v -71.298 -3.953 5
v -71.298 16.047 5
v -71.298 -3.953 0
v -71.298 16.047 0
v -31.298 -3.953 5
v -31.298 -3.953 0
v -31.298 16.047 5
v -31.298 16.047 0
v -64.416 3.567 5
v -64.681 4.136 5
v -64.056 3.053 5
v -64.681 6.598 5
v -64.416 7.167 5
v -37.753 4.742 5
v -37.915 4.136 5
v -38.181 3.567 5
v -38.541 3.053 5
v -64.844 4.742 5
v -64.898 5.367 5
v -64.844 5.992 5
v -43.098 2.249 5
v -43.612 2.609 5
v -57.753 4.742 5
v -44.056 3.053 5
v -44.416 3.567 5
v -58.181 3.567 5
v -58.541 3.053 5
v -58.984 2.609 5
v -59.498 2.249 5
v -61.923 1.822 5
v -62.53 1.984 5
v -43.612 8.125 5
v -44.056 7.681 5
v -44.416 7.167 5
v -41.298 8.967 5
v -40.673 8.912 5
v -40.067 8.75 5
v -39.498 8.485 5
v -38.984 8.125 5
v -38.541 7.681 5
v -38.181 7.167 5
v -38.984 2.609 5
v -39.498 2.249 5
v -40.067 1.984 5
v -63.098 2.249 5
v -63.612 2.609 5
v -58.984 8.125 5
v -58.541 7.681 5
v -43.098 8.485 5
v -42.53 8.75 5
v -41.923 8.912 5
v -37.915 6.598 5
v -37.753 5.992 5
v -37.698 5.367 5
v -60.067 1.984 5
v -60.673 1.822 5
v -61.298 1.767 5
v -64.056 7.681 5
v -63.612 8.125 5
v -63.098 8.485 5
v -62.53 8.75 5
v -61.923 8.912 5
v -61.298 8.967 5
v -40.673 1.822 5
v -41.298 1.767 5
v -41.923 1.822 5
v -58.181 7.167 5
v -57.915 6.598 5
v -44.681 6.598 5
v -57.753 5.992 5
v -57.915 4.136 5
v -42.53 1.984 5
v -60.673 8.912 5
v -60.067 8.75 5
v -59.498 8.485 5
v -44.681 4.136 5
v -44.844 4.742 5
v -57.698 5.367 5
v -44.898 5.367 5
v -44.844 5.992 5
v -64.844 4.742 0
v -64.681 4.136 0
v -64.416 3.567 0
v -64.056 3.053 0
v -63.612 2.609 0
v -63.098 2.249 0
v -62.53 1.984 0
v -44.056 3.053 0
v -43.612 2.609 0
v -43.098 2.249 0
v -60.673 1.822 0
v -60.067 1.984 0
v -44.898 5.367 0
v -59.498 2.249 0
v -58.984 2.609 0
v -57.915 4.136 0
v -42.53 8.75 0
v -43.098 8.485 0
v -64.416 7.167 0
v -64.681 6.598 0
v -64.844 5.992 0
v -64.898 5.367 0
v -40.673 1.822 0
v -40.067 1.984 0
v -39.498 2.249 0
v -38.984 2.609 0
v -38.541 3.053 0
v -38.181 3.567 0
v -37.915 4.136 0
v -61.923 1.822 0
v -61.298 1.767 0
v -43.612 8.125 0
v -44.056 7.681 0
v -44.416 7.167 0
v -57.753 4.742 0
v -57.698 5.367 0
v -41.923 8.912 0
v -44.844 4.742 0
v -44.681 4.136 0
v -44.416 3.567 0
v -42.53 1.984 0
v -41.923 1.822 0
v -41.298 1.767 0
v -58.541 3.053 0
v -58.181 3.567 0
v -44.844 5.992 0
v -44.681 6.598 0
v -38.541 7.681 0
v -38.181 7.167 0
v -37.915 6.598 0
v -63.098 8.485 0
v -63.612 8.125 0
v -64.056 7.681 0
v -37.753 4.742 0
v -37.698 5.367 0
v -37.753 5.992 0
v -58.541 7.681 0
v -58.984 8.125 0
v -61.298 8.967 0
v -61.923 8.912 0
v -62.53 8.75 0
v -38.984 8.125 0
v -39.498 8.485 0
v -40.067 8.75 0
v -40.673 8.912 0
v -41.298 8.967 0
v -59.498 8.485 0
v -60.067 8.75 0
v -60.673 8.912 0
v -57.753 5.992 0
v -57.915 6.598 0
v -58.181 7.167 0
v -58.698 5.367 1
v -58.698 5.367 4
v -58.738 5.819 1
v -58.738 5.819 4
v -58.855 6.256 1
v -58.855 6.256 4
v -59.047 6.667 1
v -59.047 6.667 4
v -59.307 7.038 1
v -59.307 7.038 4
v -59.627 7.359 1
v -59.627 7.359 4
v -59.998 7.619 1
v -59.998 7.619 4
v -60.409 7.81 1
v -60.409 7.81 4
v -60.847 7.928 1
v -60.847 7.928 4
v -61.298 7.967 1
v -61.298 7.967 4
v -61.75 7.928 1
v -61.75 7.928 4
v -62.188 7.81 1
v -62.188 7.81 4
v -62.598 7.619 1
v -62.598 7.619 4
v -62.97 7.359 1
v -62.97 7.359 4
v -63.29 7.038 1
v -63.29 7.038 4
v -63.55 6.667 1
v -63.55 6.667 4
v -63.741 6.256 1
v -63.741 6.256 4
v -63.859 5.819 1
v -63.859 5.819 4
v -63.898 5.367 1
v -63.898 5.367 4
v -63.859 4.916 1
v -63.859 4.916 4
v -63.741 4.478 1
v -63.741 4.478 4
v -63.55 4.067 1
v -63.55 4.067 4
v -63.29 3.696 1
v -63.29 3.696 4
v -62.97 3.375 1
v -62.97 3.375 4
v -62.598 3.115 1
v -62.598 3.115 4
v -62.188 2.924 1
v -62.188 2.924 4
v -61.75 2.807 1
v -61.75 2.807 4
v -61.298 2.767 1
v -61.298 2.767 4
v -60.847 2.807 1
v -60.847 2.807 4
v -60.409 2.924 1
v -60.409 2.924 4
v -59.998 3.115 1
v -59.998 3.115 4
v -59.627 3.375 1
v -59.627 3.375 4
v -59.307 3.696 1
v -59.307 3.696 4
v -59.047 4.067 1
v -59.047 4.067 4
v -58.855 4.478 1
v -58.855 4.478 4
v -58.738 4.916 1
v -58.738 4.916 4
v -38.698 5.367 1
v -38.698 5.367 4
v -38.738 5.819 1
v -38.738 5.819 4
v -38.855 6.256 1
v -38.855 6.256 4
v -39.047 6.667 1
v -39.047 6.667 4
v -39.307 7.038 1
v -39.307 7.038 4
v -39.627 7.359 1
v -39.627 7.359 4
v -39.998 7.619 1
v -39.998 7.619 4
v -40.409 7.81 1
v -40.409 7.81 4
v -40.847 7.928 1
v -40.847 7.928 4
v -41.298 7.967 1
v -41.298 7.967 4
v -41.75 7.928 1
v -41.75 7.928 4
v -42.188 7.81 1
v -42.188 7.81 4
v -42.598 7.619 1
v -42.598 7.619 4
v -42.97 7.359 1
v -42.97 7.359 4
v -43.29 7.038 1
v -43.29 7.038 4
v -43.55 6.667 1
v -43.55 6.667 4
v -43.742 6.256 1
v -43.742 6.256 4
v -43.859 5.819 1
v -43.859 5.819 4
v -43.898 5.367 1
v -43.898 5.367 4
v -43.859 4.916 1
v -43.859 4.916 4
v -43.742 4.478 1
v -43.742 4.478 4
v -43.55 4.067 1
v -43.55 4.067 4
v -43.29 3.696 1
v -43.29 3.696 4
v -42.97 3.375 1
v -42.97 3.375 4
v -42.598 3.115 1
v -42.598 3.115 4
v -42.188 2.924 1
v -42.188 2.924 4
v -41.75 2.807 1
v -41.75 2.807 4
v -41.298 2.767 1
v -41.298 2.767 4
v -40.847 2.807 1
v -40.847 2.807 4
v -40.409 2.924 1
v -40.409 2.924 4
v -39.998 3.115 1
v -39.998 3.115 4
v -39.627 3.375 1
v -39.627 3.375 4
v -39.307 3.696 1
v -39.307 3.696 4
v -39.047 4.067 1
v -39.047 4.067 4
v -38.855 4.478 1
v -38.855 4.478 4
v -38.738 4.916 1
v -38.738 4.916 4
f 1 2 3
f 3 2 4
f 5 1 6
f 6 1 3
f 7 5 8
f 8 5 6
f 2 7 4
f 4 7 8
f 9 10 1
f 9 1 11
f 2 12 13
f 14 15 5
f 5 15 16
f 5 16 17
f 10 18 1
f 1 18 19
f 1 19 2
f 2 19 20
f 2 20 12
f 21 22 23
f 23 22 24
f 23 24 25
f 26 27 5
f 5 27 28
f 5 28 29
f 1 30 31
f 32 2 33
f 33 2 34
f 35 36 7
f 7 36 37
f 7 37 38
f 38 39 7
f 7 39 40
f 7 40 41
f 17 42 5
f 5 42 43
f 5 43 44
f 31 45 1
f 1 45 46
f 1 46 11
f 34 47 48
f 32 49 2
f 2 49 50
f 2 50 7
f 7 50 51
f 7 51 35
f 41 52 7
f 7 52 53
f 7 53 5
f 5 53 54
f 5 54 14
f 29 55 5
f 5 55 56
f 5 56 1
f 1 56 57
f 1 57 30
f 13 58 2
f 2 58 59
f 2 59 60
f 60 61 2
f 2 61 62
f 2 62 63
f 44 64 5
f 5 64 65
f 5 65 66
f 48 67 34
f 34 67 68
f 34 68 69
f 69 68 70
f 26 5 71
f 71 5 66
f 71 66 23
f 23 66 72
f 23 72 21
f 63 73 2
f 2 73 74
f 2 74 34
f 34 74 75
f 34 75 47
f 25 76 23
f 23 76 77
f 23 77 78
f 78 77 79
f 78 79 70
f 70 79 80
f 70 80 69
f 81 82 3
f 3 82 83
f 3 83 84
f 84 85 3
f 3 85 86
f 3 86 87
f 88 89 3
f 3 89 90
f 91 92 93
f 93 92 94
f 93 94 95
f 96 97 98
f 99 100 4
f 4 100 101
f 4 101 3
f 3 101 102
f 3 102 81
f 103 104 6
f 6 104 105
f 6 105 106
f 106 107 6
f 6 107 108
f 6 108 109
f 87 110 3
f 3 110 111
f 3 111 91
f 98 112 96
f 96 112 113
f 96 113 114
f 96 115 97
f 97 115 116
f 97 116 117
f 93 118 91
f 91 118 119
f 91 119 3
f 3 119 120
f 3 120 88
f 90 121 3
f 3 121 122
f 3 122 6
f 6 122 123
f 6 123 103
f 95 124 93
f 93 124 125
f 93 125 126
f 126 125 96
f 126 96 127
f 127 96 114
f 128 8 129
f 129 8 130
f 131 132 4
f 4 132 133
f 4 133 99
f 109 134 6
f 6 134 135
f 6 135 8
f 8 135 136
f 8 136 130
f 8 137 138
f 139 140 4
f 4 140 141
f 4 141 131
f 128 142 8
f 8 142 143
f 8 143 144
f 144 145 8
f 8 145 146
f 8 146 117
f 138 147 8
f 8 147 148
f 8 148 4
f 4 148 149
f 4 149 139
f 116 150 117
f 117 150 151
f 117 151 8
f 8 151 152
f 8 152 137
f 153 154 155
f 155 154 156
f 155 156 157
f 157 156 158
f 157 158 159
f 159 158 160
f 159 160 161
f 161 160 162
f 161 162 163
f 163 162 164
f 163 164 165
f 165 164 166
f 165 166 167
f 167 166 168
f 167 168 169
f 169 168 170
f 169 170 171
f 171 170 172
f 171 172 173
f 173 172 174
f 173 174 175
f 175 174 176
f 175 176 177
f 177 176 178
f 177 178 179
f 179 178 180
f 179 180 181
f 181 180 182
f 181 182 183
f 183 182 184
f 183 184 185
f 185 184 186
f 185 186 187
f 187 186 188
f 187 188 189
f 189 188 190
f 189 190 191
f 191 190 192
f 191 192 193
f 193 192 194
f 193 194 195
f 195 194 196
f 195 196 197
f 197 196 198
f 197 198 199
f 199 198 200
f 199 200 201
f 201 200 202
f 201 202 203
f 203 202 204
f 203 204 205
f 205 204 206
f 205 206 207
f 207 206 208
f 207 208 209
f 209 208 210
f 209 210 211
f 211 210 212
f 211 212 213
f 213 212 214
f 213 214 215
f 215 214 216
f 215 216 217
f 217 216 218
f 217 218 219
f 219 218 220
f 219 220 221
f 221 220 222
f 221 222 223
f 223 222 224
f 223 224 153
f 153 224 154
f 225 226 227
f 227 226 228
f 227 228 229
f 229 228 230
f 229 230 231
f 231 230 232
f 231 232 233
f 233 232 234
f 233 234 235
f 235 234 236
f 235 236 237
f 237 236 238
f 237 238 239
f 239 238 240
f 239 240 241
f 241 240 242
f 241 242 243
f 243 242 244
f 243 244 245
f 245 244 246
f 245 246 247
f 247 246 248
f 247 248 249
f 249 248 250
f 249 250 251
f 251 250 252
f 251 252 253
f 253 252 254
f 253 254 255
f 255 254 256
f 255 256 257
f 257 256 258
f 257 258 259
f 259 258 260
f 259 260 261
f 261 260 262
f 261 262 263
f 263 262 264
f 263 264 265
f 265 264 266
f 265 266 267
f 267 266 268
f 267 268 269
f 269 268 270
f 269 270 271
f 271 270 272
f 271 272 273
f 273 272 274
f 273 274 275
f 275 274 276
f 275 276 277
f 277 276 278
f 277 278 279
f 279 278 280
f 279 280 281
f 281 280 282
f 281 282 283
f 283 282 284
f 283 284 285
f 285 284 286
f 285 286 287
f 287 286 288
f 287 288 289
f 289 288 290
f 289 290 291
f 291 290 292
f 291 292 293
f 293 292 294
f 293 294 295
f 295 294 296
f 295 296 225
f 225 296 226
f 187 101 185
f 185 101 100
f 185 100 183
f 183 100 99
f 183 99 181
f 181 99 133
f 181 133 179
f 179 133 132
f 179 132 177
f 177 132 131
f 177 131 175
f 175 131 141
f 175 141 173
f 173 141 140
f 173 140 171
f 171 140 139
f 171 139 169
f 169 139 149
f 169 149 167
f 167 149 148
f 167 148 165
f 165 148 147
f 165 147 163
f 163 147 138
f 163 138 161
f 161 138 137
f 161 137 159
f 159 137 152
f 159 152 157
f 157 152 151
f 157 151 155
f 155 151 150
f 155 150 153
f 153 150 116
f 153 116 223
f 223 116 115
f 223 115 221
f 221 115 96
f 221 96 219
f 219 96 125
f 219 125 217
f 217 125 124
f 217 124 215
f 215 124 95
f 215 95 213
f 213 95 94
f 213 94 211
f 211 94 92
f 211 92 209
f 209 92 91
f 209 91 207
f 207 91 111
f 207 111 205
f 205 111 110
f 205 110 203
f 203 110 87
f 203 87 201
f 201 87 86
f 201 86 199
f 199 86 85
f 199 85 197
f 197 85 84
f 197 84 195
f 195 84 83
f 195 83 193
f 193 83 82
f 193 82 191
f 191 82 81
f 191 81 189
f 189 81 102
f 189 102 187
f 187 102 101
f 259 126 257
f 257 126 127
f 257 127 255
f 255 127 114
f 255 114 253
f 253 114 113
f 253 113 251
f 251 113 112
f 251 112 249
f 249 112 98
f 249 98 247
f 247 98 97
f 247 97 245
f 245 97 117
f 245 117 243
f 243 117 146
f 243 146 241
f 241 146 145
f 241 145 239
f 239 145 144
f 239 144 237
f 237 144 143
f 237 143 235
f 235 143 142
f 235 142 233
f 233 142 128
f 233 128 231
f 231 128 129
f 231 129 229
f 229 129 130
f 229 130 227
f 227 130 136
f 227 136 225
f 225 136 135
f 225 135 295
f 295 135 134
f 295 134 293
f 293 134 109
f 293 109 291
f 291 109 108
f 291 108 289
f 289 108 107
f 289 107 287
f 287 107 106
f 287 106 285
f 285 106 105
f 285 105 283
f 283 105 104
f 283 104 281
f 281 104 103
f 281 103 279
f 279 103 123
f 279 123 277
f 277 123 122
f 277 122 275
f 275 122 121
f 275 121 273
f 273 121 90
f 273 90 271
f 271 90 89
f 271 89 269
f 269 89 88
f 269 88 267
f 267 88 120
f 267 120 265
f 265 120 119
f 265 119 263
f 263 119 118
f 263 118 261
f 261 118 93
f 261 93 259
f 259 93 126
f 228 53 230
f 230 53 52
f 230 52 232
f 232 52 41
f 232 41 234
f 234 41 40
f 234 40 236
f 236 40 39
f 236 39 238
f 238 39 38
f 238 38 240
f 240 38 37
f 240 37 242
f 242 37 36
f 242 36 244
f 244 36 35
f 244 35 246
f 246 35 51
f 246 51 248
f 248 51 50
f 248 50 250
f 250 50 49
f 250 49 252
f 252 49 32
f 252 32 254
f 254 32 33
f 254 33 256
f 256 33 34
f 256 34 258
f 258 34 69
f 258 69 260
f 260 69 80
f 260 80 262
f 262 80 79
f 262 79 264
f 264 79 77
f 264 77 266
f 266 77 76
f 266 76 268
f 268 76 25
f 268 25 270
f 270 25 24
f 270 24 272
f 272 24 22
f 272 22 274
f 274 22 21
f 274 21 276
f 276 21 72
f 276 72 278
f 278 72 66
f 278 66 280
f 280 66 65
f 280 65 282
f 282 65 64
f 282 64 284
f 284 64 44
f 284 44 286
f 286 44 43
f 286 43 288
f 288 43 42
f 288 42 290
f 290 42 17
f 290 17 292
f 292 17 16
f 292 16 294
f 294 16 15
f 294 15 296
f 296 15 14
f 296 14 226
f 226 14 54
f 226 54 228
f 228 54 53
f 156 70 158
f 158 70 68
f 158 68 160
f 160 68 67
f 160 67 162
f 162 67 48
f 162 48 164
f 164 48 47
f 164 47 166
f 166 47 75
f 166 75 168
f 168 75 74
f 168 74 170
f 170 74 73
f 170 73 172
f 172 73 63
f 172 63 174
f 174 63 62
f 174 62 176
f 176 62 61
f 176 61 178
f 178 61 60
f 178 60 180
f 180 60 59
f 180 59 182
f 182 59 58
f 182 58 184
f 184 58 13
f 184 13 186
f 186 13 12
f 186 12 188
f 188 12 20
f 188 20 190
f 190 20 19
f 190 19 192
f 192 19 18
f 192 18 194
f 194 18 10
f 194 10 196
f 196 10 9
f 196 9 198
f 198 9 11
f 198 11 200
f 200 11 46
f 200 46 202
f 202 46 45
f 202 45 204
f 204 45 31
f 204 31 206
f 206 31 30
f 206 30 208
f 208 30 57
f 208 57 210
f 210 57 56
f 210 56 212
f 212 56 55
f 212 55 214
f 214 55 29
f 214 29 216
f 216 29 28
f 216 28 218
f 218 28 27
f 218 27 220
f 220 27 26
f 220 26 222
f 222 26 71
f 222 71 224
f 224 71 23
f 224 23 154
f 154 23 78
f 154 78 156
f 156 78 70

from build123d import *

# Parameters (mm, degrees)
IZIM1_W                     = 40
IZIM1_H                     = 20
Y_KSEKLIK_EKSTR_ZYON1_DEPTH = 5
IZIM2_R                     = 2.6
KES_EKSTR_ZYON1_DEPTH       = 5
PAH1_SIZE                   = 1


with BuildPart() as part:
    # Çizim1 → Yükseklik-Ekstrüzyon1 (new body)
    with BuildSketch(Plane.XY):
        with Locations((-51.29829922, 6.046511628)):
            Rectangle(IZIM1_W, IZIM1_H)
    extrude(amount=Y_KSEKLIK_EKSTR_ZYON1_DEPTH)

    # Çizim2 → Kes-Ekstrüzyon1 (cut)
    with BuildSketch(Plane.XY.offset(5)):
        with Locations((-61.29829922, 5.367137417)):
            Circle(IZIM2_R)
        with Locations((-41.29829922, 5.367137417)):
            Circle(IZIM2_R)
    extrude(amount=-KES_EKSTR_ZYON1_DEPTH, mode=Mode.SUBTRACT)

    # Pah1
    pah1_edges = [part.edges().sort_by_distance(p)[0] for p in [
        (-63.89829922, 5.367137417, 0),
        (-63.89829922, 5.367137417, 5),
        (-43.89829922, 5.367137417, 0),
        (-43.89829922, 5.367137417, 5),
    ]]
    chamfer(pah1_edges, length=PAH1_SIZE)


solid = part.part
